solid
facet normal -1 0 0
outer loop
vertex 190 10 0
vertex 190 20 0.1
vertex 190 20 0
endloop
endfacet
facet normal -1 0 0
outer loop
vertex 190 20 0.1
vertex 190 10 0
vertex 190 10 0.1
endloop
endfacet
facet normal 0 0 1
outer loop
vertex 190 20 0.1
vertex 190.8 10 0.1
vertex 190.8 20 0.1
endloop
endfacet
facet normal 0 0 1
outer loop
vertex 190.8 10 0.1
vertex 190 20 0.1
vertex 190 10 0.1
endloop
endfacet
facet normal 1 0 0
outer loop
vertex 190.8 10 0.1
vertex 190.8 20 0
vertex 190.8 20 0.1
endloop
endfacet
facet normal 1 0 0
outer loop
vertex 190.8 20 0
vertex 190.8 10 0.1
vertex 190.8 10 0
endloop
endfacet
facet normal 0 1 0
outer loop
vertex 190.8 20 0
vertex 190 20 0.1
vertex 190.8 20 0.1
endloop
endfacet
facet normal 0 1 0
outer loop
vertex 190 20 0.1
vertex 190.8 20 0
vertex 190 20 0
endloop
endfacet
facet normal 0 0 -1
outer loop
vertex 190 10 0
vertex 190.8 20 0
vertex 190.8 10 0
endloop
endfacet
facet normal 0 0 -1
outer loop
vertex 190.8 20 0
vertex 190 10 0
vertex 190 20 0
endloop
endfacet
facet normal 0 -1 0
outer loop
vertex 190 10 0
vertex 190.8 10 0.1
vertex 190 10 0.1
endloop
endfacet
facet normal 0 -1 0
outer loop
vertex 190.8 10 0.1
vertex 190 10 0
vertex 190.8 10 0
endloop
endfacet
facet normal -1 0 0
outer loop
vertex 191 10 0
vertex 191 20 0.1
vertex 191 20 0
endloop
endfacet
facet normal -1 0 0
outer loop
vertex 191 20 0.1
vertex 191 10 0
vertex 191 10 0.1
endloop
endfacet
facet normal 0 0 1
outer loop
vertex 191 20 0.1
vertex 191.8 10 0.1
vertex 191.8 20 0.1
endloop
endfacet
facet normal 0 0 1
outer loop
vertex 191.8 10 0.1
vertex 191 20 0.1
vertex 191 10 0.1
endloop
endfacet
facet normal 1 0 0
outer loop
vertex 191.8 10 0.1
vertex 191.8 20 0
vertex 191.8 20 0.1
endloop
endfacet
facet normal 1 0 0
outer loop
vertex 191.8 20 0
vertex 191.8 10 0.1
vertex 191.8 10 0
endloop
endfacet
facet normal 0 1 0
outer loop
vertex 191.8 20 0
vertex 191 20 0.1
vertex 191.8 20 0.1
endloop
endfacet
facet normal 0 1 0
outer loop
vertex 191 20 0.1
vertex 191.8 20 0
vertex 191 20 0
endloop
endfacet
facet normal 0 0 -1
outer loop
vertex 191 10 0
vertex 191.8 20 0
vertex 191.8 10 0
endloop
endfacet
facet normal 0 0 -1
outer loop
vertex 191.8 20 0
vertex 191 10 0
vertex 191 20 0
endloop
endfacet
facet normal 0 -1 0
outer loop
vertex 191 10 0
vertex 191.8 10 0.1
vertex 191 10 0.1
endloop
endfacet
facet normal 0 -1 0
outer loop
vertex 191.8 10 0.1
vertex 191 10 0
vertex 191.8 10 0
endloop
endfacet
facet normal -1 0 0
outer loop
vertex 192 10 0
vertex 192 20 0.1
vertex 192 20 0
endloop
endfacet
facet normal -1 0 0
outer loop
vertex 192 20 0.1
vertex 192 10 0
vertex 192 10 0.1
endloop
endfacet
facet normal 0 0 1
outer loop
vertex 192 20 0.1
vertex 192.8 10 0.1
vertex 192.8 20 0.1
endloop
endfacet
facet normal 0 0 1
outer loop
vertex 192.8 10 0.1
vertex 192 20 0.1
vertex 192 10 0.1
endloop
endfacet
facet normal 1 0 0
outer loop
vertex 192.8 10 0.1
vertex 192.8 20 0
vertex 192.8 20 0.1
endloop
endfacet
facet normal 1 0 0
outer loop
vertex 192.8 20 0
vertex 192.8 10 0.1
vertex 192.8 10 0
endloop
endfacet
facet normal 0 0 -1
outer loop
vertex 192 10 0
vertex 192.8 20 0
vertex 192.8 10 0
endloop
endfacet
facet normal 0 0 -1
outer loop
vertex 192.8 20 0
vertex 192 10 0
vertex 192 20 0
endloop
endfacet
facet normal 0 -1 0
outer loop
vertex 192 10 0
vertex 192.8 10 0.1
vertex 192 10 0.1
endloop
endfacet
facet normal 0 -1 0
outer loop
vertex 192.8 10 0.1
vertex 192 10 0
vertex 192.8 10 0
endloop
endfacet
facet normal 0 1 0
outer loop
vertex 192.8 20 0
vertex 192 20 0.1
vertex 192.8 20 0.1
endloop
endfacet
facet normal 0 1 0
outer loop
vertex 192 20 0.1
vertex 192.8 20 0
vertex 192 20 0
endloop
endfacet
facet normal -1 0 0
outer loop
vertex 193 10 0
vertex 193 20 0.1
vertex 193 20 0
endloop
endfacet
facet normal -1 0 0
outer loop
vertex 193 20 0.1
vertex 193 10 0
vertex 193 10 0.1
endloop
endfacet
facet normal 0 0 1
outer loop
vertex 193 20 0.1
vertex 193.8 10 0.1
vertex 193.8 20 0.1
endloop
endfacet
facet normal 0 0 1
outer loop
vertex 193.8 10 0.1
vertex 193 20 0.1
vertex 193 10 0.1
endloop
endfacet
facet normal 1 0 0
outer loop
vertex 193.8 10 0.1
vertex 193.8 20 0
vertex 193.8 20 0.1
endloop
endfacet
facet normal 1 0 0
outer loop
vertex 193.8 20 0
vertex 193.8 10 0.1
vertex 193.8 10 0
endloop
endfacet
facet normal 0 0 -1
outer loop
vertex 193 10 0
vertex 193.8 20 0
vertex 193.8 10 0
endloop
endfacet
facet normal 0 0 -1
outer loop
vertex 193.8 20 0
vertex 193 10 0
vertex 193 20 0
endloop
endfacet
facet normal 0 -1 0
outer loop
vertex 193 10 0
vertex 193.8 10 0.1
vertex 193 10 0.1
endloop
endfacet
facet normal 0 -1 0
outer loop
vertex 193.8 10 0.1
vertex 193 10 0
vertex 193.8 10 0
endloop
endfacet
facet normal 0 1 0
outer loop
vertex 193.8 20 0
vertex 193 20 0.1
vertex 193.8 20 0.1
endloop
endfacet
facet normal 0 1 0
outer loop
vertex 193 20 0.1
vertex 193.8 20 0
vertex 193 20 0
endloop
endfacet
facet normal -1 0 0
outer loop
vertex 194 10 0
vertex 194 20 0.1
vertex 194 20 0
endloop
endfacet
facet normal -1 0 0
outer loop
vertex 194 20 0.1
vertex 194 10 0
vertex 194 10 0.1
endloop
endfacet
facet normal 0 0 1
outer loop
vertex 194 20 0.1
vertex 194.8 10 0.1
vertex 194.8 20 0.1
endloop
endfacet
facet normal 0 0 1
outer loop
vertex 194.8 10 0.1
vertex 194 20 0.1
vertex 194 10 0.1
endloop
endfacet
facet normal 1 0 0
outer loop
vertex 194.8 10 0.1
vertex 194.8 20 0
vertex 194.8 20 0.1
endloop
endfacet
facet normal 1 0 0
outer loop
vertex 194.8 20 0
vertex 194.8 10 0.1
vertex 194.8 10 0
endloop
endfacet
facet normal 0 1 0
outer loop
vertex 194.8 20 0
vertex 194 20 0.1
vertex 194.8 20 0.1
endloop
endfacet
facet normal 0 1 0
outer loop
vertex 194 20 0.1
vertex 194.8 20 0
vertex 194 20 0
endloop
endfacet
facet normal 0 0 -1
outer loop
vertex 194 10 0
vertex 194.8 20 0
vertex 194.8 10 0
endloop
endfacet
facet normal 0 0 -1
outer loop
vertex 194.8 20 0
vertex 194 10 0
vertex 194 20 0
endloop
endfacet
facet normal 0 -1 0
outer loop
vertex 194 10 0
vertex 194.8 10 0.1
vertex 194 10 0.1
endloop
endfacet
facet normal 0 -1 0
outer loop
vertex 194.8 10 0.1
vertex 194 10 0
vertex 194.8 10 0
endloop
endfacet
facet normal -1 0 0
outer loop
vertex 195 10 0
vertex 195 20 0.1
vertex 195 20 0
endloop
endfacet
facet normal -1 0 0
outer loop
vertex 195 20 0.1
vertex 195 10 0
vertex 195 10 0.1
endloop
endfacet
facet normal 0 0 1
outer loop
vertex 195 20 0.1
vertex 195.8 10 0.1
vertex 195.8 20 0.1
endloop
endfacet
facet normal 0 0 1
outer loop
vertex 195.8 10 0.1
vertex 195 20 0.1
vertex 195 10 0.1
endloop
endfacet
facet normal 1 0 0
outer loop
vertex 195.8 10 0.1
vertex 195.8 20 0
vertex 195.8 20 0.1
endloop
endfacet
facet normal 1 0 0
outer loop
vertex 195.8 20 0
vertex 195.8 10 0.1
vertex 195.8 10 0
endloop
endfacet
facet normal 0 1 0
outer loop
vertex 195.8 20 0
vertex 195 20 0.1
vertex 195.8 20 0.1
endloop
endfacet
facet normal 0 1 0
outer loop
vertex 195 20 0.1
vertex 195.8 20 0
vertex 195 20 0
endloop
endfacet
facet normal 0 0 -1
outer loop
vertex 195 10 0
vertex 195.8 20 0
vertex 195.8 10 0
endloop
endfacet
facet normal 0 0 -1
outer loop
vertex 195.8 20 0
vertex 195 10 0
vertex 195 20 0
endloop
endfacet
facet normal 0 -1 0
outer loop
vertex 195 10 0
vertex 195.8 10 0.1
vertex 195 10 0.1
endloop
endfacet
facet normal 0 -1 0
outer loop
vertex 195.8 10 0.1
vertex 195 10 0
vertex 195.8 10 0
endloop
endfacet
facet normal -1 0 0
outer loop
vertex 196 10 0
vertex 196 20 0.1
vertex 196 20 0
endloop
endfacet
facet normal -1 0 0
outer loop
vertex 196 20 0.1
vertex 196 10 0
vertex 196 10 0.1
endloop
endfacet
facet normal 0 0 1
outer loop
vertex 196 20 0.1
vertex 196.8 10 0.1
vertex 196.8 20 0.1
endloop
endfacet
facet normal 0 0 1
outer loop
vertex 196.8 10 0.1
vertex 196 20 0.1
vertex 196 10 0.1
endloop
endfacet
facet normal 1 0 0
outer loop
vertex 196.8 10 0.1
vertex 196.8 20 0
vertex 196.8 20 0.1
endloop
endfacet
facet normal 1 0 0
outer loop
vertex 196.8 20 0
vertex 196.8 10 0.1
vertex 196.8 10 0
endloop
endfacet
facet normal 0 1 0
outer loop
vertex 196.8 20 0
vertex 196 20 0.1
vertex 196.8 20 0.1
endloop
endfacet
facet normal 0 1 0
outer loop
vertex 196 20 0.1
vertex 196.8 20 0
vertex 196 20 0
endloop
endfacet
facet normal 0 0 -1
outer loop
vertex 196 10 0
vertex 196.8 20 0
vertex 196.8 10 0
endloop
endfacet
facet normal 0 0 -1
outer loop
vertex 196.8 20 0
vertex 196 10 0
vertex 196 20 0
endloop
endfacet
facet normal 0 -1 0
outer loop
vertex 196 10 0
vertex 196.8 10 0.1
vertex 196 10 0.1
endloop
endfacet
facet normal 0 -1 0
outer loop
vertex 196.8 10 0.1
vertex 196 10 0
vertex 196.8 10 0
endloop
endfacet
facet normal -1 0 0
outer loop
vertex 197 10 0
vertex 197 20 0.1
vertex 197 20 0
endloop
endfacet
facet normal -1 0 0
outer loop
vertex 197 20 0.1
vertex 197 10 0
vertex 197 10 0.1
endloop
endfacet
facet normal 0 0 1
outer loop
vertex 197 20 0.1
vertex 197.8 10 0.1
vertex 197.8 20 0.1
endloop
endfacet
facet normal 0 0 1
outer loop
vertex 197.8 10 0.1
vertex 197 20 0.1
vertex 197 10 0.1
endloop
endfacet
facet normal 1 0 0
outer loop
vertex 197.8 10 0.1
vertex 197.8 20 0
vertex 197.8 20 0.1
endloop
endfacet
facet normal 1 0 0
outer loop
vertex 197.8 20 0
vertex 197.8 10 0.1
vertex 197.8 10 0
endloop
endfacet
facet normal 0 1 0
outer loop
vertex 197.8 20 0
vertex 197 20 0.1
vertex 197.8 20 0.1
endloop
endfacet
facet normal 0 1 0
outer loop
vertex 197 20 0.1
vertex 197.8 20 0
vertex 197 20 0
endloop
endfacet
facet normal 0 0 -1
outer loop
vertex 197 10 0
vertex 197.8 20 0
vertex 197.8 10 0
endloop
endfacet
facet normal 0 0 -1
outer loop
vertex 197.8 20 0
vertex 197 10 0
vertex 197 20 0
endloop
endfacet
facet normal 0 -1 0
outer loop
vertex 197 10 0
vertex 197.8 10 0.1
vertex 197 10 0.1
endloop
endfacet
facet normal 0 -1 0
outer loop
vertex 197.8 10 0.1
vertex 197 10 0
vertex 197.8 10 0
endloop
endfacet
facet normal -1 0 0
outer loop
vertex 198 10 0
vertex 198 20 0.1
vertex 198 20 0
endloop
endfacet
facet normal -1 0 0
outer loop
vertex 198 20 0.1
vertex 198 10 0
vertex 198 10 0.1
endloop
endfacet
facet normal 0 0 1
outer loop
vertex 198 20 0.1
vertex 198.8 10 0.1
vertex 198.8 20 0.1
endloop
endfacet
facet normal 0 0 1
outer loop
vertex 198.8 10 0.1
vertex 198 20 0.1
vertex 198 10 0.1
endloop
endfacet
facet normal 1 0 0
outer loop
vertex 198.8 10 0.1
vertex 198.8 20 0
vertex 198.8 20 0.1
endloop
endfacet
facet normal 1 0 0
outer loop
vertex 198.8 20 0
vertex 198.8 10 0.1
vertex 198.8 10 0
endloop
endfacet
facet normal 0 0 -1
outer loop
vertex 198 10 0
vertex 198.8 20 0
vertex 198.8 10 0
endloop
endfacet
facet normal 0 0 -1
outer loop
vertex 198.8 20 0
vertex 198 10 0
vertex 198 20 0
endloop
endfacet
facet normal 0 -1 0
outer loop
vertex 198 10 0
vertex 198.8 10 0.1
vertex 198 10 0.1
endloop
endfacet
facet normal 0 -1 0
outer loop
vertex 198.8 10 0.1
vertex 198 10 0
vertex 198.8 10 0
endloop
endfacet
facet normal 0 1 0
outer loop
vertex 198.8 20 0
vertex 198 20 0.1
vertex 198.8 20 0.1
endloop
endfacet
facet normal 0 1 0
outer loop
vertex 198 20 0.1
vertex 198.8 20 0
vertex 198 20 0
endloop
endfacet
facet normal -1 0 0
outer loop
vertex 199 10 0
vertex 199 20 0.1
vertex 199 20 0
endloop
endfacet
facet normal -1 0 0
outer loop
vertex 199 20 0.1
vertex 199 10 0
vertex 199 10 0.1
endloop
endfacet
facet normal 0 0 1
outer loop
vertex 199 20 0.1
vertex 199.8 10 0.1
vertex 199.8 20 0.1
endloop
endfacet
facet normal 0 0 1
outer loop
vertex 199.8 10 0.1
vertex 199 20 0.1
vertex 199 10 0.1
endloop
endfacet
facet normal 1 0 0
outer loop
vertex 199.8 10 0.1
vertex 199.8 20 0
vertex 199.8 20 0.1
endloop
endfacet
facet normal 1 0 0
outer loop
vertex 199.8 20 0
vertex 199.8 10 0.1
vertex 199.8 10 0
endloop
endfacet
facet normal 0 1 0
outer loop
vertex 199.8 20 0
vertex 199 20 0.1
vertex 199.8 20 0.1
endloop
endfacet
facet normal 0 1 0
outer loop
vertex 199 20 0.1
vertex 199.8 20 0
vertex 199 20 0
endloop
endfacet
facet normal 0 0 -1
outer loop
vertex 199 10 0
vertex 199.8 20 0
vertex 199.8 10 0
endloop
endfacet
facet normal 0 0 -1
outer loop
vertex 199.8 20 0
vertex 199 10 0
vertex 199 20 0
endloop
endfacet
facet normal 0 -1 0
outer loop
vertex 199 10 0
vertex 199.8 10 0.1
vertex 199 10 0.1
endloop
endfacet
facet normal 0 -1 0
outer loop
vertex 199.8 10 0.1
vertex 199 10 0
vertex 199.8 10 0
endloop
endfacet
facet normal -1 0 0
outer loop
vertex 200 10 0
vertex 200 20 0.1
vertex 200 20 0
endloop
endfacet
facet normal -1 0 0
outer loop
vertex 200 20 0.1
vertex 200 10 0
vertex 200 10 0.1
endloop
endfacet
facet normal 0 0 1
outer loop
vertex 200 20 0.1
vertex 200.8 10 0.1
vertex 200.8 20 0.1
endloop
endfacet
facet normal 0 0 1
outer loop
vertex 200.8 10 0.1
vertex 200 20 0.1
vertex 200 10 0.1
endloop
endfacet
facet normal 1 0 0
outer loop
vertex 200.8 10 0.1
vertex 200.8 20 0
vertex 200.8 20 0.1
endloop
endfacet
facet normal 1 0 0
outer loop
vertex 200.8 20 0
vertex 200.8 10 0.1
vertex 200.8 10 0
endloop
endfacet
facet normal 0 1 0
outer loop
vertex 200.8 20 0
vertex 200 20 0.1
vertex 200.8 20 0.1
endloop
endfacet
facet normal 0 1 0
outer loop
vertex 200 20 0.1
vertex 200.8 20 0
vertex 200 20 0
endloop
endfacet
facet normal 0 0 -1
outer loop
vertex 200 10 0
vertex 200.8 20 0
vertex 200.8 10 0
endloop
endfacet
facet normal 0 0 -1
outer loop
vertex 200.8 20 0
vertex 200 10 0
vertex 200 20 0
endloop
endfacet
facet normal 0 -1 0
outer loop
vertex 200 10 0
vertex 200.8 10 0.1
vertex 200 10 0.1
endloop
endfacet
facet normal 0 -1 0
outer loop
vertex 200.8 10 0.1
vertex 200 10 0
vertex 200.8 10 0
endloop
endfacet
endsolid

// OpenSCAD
translate([10+180,10+0,0])
        for (i = [0 : 10]){
            translate([i,0,0])
                cube(size = [0.8,10,0.1]);
    }
